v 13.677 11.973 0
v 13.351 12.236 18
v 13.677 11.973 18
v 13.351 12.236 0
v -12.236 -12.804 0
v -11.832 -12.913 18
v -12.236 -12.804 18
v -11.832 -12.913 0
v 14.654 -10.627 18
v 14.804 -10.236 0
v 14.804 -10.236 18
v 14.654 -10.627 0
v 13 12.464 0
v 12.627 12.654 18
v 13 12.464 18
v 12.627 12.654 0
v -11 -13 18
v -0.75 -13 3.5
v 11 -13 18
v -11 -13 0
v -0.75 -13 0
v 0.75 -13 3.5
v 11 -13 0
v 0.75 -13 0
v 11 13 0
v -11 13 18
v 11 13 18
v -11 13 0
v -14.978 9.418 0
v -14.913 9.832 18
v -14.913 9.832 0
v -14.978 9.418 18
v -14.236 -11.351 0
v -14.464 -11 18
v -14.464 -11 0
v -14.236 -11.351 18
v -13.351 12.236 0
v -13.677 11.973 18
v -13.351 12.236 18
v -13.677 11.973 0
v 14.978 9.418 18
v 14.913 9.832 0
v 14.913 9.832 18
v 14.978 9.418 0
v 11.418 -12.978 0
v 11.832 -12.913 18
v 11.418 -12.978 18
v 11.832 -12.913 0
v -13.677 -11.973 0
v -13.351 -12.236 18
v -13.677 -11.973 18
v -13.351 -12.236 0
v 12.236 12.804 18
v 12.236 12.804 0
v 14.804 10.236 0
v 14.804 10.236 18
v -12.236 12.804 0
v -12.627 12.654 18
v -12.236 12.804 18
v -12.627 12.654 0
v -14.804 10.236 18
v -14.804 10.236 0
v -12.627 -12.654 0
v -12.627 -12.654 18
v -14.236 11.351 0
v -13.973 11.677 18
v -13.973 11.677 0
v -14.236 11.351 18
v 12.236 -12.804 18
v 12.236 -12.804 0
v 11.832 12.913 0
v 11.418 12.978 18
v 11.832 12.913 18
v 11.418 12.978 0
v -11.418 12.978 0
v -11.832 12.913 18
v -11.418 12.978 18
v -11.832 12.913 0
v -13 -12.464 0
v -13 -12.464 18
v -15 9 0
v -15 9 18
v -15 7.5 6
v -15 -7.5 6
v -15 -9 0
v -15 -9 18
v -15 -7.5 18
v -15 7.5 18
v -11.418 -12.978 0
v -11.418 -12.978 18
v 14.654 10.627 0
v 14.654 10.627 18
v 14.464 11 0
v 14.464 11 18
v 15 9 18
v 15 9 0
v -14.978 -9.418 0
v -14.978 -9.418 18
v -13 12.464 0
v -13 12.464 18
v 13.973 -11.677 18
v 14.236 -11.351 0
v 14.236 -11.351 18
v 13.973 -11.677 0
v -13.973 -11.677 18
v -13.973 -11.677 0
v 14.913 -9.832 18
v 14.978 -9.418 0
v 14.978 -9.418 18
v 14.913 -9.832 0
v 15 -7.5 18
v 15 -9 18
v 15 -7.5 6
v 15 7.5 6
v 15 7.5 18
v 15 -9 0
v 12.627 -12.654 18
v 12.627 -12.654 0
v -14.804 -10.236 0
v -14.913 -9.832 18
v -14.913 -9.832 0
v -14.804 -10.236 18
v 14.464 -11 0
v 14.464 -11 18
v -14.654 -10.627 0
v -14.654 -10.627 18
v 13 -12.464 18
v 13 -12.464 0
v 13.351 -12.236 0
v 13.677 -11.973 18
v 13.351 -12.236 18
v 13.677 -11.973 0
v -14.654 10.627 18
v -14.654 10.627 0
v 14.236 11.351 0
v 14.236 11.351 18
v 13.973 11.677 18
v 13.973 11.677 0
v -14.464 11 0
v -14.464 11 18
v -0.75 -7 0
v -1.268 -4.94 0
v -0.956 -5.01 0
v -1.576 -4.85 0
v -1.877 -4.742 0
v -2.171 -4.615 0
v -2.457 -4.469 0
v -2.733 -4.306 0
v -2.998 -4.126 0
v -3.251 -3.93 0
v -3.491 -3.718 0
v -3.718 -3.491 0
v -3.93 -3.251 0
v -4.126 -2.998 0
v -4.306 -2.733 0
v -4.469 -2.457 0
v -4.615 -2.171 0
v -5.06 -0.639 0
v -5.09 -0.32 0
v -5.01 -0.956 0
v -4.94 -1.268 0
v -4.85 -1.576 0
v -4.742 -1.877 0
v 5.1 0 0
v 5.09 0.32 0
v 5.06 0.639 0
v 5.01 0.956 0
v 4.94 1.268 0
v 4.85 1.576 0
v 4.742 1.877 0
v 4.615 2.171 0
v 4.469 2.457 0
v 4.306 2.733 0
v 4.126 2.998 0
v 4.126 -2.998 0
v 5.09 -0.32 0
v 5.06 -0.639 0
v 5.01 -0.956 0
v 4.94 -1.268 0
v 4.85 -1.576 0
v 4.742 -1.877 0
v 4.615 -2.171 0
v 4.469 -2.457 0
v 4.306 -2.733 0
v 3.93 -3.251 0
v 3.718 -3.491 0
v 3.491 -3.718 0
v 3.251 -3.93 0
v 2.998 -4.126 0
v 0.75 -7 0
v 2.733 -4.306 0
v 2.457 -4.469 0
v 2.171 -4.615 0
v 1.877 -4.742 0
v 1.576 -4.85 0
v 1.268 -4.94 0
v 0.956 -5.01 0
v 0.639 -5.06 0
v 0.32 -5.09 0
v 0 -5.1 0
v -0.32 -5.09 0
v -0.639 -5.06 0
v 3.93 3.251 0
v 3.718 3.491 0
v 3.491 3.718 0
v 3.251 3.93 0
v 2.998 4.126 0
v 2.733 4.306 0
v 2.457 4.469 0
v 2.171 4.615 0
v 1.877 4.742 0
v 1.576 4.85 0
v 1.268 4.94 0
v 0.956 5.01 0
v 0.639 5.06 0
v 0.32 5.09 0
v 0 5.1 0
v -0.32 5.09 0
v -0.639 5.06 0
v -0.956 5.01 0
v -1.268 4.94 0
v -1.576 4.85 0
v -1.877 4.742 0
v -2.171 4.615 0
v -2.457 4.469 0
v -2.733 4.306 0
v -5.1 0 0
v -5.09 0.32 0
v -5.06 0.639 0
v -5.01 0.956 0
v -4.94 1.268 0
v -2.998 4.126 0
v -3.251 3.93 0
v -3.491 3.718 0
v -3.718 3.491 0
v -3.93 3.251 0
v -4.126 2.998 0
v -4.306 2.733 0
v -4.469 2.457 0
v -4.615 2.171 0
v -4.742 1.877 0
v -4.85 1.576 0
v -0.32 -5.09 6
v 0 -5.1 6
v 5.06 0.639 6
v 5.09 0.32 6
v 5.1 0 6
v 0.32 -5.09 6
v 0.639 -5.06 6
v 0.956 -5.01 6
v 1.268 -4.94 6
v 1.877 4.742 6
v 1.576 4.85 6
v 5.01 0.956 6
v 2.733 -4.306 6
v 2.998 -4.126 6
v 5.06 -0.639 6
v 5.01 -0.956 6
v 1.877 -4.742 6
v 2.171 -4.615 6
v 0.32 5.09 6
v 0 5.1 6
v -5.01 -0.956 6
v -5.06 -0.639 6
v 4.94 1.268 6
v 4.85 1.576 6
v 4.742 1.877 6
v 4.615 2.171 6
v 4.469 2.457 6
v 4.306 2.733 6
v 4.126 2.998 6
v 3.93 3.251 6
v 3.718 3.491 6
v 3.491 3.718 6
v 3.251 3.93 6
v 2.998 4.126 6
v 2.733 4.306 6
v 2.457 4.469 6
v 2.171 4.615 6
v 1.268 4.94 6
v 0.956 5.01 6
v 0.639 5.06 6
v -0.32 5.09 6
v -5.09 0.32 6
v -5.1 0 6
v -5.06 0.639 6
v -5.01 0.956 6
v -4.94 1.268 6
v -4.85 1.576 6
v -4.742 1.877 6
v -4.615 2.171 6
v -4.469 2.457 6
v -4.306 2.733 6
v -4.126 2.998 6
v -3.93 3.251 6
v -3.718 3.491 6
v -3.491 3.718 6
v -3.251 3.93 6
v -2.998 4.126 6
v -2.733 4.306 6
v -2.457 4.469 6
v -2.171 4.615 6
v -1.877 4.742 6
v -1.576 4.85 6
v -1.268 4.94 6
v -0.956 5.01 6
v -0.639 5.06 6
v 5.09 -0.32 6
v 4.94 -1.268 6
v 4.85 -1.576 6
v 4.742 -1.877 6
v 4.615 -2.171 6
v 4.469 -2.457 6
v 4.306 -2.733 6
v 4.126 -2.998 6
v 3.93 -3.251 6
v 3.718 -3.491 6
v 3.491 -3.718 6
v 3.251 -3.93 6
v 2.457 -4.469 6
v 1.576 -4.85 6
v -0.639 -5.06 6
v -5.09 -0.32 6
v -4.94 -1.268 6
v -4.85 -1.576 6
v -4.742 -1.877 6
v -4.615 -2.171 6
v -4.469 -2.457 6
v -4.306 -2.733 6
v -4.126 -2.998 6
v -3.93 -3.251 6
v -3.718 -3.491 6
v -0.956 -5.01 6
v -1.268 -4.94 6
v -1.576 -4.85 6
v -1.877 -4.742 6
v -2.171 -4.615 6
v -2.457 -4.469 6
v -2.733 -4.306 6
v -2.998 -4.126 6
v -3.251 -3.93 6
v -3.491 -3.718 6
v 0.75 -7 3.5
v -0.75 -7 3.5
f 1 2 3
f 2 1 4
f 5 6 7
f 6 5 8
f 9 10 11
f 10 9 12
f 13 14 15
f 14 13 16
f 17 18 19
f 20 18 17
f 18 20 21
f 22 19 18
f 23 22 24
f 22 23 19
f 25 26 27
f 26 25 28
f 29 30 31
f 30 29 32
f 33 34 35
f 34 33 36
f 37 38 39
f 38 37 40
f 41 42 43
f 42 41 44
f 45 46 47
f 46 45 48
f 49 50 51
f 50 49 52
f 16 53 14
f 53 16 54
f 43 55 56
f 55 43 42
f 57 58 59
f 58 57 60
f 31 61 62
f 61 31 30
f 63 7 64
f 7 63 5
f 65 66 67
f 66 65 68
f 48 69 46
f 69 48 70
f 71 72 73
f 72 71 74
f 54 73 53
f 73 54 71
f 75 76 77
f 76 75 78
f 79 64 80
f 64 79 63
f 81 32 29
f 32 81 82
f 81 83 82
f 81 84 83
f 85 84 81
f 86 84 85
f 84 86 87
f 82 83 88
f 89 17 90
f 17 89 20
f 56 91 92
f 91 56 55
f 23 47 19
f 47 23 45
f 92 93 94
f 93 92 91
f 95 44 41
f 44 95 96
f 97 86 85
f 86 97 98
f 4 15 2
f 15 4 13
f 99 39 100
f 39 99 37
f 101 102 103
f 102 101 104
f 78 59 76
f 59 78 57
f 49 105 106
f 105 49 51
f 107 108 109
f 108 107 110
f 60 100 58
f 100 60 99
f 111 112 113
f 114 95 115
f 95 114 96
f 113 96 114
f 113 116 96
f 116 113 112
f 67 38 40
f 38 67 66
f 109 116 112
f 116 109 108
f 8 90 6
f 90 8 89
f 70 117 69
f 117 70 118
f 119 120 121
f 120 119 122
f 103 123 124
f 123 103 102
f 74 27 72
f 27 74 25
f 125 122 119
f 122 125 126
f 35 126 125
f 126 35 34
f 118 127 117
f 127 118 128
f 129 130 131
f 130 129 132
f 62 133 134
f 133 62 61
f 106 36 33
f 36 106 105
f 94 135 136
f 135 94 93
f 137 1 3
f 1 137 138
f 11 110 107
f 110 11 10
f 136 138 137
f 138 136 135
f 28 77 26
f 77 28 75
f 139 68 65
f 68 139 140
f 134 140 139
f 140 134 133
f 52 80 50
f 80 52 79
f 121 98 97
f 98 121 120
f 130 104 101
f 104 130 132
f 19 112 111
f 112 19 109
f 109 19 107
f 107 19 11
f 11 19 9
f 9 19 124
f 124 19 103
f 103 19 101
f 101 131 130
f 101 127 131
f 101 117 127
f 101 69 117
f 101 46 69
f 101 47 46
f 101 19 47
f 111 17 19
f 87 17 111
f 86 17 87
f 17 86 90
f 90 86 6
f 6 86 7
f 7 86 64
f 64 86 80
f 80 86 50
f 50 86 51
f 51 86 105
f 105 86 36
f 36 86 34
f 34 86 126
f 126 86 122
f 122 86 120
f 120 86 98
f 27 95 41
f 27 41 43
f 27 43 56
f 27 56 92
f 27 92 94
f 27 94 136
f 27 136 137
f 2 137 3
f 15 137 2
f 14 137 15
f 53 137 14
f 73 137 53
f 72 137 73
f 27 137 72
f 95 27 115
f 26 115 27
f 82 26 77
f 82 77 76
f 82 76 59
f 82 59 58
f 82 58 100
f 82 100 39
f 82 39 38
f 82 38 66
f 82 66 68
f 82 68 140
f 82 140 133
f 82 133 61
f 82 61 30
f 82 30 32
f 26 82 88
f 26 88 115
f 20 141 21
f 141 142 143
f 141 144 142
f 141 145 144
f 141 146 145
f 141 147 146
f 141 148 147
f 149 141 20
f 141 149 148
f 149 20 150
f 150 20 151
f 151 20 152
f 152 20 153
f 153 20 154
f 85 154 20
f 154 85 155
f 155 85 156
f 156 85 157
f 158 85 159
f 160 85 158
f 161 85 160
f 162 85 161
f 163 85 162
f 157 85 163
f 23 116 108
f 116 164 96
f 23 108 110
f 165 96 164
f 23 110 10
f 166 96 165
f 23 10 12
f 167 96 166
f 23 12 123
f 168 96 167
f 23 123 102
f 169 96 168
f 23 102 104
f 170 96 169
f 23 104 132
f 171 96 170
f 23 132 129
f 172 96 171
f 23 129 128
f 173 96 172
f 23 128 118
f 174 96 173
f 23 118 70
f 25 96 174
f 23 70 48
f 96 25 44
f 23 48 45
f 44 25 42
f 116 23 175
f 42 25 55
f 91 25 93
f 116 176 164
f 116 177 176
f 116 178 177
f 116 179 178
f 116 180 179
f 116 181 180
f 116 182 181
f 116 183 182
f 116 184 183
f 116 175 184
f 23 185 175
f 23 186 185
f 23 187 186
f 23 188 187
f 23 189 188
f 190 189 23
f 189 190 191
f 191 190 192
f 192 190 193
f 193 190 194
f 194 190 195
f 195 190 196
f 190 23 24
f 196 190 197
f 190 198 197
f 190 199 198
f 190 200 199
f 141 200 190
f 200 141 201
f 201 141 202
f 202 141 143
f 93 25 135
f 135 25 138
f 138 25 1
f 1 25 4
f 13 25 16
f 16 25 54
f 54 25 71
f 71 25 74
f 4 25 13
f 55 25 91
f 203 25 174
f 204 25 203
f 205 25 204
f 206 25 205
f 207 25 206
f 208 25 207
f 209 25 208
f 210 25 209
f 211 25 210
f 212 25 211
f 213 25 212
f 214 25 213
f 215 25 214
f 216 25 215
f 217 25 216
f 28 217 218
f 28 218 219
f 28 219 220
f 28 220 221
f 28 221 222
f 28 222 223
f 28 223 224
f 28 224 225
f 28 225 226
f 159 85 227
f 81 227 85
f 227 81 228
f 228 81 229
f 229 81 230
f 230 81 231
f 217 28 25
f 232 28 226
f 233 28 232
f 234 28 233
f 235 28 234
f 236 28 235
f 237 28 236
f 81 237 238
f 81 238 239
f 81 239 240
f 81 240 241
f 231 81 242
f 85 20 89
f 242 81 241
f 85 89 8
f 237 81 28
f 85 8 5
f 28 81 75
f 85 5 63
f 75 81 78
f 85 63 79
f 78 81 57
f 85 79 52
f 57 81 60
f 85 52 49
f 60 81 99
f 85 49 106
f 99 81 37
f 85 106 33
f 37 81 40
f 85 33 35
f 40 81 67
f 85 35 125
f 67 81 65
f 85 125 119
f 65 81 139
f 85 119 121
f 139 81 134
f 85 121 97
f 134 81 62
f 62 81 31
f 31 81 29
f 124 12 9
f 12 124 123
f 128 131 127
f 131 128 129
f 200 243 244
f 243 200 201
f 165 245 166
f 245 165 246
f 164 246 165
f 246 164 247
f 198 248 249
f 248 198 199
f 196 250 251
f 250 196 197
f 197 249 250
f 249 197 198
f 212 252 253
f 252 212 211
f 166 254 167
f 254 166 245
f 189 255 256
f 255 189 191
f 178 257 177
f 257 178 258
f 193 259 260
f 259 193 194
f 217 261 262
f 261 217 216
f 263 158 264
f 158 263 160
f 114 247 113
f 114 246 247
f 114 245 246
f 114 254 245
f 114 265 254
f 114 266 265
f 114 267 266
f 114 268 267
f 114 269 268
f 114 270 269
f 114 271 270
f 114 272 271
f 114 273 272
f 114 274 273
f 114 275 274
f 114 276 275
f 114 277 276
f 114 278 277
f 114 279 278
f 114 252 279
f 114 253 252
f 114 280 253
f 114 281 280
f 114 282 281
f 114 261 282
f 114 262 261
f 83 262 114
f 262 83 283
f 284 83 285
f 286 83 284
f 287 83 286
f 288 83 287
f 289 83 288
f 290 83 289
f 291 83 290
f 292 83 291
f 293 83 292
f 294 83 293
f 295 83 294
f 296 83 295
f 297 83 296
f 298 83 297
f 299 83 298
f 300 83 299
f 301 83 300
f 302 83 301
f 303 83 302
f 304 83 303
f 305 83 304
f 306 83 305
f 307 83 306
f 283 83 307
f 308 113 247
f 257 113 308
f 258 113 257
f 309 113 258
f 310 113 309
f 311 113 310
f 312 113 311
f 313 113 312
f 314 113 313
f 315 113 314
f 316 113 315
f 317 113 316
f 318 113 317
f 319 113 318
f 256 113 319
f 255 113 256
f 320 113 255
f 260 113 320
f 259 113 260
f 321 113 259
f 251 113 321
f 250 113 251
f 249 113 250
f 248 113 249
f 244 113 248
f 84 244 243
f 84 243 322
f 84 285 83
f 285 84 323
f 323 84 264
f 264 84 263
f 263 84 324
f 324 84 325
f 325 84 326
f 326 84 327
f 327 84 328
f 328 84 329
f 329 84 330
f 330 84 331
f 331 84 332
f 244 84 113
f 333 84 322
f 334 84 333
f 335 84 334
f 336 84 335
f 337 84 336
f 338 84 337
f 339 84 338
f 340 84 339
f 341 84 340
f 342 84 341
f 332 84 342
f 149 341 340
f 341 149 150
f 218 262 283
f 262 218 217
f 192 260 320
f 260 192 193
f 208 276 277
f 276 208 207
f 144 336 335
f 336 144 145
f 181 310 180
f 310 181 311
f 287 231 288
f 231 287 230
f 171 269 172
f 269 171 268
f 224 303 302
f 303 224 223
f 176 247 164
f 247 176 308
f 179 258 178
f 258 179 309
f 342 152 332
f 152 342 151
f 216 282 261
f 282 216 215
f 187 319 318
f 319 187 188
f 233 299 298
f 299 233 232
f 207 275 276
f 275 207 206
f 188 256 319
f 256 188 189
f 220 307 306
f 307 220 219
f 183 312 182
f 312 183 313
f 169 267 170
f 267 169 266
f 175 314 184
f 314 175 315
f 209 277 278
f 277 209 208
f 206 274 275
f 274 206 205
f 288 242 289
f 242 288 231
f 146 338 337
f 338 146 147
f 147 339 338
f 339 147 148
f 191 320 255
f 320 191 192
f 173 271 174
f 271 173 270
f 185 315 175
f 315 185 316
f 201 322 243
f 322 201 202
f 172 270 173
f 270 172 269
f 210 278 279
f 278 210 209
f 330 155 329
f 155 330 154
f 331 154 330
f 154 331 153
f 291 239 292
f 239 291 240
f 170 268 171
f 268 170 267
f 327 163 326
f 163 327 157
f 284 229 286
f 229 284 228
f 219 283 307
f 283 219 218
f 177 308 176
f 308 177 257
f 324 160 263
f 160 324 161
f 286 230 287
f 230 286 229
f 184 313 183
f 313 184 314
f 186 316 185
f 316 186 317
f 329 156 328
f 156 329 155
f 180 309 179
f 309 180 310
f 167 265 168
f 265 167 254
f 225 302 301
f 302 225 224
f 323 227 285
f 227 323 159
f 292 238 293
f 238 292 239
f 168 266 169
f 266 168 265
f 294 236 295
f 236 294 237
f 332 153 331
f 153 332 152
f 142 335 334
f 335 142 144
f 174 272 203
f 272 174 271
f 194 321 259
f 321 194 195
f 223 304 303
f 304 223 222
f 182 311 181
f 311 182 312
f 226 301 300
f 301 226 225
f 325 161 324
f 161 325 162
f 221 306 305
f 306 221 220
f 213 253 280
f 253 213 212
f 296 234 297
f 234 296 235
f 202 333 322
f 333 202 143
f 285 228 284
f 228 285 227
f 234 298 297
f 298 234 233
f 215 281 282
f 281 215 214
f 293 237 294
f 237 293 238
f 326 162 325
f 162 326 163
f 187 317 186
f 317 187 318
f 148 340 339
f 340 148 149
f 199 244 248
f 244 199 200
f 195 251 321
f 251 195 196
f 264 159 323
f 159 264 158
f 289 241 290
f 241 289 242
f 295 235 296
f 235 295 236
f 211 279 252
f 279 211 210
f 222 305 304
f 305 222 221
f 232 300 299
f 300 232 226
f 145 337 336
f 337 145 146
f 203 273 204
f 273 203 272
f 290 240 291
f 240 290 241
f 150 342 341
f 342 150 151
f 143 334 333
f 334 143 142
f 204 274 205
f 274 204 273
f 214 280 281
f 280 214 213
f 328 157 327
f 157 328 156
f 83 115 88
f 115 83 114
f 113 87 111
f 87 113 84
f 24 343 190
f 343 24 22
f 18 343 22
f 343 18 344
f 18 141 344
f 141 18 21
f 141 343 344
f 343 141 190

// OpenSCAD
// V52-R Ergo-Snap
// Specifically for Vybronics VG1030001XH (10mm x 3mm)

module v52_right_final() {
    difference() {
        // 1. THE MAIN ENCLOSURE
        // This creates the smooth, rounded "bean" shape
        hull() {
            translate([-11, -9, 0])  cylinder(r=4, h=18, $fn=60);
            translate([11, -9, 0])   cylinder(r=4, h=18, $fn=60);
            translate([-11, 9, 0])   cylinder(r=4, h=18, $fn=60);
            translate([11, 9, 0])    cylinder(r=4, h=18, $fn=60);
        }

        // 2. THE MOTOR OPENING (The Skin-Side Hole)
        // This cuts a 10.2mm hole through the bottom 6mm.
        // This is what allows the motor to touch your mastoid bone.
        translate([0, 0, -1]) 
            cylinder(d=10.2, h=7, $fn=100);

        // 3. THE BATTERY POD SLOT (Internal Clip)
        // This hollows out the block so it can snap onto the headphones.
        translate([-15, -7.5, 6]) 
            cube([30, 15, 13]); 

        // 4. WIRE TRENCH (The AWG 30 Exit)
        // A tiny 1.5mm channel so the wires don't get pinched.
        translate([0, -12, 1.5]) 
            cube([1.5, 10, 4], center=true);

        // 5. THE "R" MARKING (Tactile Identifier)
        // This carves the letter "R" 1.5mm deep into the top surface.
        translate([0, 0, 17]) 
            linear_extrude(height = 2) 
                text("R", size=9, font="Arial:style=Bold", halign="center", valign="center");
    }
}

v52_right_final();
